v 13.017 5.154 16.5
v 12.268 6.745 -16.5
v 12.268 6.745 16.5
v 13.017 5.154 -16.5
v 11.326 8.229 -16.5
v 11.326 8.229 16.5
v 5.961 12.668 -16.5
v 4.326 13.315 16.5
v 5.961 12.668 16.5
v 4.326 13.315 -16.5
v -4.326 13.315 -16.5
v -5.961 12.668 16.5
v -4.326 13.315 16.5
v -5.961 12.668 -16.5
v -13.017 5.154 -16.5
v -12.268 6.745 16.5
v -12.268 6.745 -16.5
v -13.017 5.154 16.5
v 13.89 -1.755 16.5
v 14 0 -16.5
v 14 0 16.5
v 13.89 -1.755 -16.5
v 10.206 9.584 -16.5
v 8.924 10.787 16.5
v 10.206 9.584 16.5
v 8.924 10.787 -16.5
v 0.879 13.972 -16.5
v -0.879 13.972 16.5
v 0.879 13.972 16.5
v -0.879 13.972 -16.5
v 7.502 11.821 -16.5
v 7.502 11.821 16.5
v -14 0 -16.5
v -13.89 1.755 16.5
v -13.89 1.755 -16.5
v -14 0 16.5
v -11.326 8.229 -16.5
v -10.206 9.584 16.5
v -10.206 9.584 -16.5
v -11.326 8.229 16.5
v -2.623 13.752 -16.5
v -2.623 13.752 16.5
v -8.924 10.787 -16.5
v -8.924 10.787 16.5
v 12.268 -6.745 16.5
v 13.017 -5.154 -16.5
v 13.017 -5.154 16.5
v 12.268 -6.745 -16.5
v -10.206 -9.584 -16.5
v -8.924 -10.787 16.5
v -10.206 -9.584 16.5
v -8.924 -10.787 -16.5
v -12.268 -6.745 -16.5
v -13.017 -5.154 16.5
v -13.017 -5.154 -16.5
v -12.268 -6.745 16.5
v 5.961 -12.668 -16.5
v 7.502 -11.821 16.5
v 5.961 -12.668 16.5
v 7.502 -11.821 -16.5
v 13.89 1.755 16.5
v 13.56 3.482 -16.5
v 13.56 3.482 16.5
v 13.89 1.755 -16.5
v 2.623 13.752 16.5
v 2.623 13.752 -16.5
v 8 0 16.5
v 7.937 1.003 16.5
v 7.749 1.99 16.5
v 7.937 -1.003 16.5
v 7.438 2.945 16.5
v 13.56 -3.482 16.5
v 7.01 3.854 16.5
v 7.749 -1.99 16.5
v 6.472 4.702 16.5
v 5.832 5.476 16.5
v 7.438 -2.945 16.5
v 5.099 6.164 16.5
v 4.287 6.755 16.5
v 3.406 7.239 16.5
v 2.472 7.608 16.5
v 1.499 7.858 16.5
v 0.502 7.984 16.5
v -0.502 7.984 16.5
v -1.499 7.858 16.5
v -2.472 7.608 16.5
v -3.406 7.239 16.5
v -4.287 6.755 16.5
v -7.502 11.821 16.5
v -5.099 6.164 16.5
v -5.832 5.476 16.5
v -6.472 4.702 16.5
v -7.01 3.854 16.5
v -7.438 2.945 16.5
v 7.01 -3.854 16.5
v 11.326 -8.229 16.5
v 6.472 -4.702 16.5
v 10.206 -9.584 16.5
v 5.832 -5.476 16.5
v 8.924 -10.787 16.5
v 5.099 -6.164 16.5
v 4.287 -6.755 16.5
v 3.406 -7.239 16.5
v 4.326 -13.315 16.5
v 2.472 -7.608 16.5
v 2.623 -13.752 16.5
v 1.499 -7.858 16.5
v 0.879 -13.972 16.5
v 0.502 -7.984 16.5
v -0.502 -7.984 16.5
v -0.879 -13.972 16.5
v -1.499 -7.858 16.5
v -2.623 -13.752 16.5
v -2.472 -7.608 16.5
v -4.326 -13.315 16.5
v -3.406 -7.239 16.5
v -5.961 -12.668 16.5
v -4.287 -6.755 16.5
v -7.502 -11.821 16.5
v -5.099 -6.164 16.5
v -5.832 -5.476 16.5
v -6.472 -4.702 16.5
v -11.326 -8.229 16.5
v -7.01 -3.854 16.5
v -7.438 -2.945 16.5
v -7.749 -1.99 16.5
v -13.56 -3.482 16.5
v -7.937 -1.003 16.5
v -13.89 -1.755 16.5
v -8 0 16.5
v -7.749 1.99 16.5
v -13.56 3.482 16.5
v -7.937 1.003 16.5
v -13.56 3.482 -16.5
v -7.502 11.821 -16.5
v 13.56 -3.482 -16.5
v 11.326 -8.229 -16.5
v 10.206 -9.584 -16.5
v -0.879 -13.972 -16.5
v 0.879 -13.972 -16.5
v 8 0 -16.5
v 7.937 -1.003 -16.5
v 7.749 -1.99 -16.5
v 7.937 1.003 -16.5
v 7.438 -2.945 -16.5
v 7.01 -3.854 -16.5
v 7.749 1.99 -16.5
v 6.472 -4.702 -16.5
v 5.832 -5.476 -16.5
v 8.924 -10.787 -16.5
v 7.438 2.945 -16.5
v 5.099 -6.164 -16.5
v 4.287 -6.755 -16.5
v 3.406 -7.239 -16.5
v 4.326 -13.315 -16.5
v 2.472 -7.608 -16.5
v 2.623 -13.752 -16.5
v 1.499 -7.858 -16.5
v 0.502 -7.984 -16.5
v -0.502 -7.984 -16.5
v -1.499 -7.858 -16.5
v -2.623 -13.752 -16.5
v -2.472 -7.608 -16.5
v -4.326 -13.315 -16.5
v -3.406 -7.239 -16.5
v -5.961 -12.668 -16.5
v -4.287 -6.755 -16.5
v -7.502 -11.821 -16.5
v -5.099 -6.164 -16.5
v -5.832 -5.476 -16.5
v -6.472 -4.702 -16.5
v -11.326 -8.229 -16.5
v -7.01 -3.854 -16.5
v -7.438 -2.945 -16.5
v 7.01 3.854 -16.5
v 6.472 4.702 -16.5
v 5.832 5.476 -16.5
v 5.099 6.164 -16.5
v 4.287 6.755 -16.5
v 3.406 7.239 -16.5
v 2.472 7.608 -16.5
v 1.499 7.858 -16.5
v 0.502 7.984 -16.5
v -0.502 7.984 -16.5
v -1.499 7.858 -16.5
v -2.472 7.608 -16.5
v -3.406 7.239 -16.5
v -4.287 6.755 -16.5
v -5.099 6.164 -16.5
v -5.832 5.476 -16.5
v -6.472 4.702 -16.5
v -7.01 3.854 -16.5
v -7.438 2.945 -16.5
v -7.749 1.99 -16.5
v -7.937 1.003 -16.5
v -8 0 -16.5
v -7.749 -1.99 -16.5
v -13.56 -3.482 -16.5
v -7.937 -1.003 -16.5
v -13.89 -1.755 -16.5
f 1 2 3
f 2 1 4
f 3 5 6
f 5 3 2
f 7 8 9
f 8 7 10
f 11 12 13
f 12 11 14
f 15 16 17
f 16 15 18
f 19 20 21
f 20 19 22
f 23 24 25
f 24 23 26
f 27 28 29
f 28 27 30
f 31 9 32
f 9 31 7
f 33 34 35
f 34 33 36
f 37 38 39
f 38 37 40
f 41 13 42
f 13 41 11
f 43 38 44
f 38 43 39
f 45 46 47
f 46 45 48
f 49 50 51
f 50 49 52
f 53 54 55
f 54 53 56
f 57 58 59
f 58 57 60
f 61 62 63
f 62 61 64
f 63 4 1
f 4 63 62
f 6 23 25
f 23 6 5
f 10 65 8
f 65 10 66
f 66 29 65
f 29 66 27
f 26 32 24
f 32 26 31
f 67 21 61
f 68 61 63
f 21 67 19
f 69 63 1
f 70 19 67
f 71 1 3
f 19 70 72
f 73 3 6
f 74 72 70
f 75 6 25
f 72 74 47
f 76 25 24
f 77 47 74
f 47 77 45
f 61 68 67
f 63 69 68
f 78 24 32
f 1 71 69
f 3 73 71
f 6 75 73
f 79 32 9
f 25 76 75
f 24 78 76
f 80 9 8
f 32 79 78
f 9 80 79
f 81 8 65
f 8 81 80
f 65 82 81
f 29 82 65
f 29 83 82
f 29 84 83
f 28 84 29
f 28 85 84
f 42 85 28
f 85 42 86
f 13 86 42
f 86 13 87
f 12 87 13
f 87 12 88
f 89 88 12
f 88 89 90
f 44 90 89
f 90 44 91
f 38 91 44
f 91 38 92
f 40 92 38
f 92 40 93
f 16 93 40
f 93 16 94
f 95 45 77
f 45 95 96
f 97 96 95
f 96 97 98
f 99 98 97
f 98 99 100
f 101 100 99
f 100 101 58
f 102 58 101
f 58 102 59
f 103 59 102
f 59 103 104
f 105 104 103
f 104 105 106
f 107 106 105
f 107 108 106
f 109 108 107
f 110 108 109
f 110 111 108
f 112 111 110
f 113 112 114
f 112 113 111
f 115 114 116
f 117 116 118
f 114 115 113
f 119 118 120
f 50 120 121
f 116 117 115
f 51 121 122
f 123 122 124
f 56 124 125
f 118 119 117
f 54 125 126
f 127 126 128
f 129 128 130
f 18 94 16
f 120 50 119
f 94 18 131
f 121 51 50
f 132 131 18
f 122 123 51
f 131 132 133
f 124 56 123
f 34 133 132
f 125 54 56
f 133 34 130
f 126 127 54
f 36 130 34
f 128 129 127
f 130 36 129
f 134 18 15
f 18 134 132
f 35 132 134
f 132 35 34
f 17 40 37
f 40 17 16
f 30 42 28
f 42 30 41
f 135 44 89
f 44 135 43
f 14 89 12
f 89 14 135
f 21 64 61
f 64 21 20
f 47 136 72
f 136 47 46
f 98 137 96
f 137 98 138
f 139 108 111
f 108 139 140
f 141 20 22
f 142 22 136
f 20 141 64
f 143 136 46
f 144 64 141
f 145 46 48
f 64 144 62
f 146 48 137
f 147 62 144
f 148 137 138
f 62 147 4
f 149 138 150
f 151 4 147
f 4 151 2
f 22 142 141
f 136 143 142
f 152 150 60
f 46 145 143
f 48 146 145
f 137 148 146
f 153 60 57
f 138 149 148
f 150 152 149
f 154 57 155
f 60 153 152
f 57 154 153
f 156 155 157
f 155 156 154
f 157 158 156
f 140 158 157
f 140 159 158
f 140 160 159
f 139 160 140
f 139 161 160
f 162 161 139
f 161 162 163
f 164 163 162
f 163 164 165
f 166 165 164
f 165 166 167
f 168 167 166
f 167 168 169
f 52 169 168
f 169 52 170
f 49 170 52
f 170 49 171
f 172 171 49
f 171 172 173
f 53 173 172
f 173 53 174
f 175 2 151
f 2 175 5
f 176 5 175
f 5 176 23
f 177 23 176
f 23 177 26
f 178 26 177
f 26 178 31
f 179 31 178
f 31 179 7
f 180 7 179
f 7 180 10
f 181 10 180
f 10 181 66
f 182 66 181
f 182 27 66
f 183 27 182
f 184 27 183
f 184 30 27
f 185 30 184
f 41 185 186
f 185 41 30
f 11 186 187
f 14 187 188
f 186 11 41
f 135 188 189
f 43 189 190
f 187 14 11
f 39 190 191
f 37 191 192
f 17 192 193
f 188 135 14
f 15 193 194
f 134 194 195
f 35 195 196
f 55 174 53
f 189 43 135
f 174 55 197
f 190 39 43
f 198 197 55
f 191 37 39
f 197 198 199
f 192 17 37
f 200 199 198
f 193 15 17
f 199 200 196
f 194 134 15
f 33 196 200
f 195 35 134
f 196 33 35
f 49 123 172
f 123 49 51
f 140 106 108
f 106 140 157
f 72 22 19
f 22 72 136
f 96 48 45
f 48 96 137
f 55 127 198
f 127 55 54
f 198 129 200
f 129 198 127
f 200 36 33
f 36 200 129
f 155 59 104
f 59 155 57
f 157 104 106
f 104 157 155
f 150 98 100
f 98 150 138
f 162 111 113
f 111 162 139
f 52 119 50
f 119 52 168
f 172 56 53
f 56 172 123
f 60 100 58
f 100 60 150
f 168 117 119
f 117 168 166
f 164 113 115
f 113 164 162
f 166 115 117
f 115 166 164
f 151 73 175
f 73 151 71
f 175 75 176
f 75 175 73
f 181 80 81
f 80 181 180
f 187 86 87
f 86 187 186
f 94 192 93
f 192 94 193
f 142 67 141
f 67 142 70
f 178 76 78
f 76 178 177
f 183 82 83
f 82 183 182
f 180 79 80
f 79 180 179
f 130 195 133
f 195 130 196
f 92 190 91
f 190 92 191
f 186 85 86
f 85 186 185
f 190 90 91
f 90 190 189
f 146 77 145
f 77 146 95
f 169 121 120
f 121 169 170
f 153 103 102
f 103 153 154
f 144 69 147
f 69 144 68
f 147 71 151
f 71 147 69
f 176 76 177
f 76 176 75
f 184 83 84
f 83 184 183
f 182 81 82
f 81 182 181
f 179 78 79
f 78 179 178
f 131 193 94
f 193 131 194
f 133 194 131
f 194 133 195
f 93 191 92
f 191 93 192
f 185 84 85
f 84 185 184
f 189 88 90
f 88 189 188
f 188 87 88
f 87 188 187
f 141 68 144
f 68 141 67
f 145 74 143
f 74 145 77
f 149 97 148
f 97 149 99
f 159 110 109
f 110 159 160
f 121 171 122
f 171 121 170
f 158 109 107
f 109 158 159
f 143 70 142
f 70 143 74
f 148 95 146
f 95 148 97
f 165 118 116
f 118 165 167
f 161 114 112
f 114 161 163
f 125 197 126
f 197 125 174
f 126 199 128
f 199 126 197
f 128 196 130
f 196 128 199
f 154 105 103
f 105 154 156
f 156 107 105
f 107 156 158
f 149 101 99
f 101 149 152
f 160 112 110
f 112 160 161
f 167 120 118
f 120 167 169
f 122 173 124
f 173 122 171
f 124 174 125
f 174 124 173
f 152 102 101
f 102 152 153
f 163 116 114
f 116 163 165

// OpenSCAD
$fn = 50;


difference() {
	union() {
		translate(v = [0, 0, -16.5000000000]) {
			cylinder(h = 33, r = 14.0000000000);
		}
	}
	union() {
		translate(v = [0, 0, -100.0000000000]) {
			cylinder(h = 200, r = 8);
		}
	}
}
